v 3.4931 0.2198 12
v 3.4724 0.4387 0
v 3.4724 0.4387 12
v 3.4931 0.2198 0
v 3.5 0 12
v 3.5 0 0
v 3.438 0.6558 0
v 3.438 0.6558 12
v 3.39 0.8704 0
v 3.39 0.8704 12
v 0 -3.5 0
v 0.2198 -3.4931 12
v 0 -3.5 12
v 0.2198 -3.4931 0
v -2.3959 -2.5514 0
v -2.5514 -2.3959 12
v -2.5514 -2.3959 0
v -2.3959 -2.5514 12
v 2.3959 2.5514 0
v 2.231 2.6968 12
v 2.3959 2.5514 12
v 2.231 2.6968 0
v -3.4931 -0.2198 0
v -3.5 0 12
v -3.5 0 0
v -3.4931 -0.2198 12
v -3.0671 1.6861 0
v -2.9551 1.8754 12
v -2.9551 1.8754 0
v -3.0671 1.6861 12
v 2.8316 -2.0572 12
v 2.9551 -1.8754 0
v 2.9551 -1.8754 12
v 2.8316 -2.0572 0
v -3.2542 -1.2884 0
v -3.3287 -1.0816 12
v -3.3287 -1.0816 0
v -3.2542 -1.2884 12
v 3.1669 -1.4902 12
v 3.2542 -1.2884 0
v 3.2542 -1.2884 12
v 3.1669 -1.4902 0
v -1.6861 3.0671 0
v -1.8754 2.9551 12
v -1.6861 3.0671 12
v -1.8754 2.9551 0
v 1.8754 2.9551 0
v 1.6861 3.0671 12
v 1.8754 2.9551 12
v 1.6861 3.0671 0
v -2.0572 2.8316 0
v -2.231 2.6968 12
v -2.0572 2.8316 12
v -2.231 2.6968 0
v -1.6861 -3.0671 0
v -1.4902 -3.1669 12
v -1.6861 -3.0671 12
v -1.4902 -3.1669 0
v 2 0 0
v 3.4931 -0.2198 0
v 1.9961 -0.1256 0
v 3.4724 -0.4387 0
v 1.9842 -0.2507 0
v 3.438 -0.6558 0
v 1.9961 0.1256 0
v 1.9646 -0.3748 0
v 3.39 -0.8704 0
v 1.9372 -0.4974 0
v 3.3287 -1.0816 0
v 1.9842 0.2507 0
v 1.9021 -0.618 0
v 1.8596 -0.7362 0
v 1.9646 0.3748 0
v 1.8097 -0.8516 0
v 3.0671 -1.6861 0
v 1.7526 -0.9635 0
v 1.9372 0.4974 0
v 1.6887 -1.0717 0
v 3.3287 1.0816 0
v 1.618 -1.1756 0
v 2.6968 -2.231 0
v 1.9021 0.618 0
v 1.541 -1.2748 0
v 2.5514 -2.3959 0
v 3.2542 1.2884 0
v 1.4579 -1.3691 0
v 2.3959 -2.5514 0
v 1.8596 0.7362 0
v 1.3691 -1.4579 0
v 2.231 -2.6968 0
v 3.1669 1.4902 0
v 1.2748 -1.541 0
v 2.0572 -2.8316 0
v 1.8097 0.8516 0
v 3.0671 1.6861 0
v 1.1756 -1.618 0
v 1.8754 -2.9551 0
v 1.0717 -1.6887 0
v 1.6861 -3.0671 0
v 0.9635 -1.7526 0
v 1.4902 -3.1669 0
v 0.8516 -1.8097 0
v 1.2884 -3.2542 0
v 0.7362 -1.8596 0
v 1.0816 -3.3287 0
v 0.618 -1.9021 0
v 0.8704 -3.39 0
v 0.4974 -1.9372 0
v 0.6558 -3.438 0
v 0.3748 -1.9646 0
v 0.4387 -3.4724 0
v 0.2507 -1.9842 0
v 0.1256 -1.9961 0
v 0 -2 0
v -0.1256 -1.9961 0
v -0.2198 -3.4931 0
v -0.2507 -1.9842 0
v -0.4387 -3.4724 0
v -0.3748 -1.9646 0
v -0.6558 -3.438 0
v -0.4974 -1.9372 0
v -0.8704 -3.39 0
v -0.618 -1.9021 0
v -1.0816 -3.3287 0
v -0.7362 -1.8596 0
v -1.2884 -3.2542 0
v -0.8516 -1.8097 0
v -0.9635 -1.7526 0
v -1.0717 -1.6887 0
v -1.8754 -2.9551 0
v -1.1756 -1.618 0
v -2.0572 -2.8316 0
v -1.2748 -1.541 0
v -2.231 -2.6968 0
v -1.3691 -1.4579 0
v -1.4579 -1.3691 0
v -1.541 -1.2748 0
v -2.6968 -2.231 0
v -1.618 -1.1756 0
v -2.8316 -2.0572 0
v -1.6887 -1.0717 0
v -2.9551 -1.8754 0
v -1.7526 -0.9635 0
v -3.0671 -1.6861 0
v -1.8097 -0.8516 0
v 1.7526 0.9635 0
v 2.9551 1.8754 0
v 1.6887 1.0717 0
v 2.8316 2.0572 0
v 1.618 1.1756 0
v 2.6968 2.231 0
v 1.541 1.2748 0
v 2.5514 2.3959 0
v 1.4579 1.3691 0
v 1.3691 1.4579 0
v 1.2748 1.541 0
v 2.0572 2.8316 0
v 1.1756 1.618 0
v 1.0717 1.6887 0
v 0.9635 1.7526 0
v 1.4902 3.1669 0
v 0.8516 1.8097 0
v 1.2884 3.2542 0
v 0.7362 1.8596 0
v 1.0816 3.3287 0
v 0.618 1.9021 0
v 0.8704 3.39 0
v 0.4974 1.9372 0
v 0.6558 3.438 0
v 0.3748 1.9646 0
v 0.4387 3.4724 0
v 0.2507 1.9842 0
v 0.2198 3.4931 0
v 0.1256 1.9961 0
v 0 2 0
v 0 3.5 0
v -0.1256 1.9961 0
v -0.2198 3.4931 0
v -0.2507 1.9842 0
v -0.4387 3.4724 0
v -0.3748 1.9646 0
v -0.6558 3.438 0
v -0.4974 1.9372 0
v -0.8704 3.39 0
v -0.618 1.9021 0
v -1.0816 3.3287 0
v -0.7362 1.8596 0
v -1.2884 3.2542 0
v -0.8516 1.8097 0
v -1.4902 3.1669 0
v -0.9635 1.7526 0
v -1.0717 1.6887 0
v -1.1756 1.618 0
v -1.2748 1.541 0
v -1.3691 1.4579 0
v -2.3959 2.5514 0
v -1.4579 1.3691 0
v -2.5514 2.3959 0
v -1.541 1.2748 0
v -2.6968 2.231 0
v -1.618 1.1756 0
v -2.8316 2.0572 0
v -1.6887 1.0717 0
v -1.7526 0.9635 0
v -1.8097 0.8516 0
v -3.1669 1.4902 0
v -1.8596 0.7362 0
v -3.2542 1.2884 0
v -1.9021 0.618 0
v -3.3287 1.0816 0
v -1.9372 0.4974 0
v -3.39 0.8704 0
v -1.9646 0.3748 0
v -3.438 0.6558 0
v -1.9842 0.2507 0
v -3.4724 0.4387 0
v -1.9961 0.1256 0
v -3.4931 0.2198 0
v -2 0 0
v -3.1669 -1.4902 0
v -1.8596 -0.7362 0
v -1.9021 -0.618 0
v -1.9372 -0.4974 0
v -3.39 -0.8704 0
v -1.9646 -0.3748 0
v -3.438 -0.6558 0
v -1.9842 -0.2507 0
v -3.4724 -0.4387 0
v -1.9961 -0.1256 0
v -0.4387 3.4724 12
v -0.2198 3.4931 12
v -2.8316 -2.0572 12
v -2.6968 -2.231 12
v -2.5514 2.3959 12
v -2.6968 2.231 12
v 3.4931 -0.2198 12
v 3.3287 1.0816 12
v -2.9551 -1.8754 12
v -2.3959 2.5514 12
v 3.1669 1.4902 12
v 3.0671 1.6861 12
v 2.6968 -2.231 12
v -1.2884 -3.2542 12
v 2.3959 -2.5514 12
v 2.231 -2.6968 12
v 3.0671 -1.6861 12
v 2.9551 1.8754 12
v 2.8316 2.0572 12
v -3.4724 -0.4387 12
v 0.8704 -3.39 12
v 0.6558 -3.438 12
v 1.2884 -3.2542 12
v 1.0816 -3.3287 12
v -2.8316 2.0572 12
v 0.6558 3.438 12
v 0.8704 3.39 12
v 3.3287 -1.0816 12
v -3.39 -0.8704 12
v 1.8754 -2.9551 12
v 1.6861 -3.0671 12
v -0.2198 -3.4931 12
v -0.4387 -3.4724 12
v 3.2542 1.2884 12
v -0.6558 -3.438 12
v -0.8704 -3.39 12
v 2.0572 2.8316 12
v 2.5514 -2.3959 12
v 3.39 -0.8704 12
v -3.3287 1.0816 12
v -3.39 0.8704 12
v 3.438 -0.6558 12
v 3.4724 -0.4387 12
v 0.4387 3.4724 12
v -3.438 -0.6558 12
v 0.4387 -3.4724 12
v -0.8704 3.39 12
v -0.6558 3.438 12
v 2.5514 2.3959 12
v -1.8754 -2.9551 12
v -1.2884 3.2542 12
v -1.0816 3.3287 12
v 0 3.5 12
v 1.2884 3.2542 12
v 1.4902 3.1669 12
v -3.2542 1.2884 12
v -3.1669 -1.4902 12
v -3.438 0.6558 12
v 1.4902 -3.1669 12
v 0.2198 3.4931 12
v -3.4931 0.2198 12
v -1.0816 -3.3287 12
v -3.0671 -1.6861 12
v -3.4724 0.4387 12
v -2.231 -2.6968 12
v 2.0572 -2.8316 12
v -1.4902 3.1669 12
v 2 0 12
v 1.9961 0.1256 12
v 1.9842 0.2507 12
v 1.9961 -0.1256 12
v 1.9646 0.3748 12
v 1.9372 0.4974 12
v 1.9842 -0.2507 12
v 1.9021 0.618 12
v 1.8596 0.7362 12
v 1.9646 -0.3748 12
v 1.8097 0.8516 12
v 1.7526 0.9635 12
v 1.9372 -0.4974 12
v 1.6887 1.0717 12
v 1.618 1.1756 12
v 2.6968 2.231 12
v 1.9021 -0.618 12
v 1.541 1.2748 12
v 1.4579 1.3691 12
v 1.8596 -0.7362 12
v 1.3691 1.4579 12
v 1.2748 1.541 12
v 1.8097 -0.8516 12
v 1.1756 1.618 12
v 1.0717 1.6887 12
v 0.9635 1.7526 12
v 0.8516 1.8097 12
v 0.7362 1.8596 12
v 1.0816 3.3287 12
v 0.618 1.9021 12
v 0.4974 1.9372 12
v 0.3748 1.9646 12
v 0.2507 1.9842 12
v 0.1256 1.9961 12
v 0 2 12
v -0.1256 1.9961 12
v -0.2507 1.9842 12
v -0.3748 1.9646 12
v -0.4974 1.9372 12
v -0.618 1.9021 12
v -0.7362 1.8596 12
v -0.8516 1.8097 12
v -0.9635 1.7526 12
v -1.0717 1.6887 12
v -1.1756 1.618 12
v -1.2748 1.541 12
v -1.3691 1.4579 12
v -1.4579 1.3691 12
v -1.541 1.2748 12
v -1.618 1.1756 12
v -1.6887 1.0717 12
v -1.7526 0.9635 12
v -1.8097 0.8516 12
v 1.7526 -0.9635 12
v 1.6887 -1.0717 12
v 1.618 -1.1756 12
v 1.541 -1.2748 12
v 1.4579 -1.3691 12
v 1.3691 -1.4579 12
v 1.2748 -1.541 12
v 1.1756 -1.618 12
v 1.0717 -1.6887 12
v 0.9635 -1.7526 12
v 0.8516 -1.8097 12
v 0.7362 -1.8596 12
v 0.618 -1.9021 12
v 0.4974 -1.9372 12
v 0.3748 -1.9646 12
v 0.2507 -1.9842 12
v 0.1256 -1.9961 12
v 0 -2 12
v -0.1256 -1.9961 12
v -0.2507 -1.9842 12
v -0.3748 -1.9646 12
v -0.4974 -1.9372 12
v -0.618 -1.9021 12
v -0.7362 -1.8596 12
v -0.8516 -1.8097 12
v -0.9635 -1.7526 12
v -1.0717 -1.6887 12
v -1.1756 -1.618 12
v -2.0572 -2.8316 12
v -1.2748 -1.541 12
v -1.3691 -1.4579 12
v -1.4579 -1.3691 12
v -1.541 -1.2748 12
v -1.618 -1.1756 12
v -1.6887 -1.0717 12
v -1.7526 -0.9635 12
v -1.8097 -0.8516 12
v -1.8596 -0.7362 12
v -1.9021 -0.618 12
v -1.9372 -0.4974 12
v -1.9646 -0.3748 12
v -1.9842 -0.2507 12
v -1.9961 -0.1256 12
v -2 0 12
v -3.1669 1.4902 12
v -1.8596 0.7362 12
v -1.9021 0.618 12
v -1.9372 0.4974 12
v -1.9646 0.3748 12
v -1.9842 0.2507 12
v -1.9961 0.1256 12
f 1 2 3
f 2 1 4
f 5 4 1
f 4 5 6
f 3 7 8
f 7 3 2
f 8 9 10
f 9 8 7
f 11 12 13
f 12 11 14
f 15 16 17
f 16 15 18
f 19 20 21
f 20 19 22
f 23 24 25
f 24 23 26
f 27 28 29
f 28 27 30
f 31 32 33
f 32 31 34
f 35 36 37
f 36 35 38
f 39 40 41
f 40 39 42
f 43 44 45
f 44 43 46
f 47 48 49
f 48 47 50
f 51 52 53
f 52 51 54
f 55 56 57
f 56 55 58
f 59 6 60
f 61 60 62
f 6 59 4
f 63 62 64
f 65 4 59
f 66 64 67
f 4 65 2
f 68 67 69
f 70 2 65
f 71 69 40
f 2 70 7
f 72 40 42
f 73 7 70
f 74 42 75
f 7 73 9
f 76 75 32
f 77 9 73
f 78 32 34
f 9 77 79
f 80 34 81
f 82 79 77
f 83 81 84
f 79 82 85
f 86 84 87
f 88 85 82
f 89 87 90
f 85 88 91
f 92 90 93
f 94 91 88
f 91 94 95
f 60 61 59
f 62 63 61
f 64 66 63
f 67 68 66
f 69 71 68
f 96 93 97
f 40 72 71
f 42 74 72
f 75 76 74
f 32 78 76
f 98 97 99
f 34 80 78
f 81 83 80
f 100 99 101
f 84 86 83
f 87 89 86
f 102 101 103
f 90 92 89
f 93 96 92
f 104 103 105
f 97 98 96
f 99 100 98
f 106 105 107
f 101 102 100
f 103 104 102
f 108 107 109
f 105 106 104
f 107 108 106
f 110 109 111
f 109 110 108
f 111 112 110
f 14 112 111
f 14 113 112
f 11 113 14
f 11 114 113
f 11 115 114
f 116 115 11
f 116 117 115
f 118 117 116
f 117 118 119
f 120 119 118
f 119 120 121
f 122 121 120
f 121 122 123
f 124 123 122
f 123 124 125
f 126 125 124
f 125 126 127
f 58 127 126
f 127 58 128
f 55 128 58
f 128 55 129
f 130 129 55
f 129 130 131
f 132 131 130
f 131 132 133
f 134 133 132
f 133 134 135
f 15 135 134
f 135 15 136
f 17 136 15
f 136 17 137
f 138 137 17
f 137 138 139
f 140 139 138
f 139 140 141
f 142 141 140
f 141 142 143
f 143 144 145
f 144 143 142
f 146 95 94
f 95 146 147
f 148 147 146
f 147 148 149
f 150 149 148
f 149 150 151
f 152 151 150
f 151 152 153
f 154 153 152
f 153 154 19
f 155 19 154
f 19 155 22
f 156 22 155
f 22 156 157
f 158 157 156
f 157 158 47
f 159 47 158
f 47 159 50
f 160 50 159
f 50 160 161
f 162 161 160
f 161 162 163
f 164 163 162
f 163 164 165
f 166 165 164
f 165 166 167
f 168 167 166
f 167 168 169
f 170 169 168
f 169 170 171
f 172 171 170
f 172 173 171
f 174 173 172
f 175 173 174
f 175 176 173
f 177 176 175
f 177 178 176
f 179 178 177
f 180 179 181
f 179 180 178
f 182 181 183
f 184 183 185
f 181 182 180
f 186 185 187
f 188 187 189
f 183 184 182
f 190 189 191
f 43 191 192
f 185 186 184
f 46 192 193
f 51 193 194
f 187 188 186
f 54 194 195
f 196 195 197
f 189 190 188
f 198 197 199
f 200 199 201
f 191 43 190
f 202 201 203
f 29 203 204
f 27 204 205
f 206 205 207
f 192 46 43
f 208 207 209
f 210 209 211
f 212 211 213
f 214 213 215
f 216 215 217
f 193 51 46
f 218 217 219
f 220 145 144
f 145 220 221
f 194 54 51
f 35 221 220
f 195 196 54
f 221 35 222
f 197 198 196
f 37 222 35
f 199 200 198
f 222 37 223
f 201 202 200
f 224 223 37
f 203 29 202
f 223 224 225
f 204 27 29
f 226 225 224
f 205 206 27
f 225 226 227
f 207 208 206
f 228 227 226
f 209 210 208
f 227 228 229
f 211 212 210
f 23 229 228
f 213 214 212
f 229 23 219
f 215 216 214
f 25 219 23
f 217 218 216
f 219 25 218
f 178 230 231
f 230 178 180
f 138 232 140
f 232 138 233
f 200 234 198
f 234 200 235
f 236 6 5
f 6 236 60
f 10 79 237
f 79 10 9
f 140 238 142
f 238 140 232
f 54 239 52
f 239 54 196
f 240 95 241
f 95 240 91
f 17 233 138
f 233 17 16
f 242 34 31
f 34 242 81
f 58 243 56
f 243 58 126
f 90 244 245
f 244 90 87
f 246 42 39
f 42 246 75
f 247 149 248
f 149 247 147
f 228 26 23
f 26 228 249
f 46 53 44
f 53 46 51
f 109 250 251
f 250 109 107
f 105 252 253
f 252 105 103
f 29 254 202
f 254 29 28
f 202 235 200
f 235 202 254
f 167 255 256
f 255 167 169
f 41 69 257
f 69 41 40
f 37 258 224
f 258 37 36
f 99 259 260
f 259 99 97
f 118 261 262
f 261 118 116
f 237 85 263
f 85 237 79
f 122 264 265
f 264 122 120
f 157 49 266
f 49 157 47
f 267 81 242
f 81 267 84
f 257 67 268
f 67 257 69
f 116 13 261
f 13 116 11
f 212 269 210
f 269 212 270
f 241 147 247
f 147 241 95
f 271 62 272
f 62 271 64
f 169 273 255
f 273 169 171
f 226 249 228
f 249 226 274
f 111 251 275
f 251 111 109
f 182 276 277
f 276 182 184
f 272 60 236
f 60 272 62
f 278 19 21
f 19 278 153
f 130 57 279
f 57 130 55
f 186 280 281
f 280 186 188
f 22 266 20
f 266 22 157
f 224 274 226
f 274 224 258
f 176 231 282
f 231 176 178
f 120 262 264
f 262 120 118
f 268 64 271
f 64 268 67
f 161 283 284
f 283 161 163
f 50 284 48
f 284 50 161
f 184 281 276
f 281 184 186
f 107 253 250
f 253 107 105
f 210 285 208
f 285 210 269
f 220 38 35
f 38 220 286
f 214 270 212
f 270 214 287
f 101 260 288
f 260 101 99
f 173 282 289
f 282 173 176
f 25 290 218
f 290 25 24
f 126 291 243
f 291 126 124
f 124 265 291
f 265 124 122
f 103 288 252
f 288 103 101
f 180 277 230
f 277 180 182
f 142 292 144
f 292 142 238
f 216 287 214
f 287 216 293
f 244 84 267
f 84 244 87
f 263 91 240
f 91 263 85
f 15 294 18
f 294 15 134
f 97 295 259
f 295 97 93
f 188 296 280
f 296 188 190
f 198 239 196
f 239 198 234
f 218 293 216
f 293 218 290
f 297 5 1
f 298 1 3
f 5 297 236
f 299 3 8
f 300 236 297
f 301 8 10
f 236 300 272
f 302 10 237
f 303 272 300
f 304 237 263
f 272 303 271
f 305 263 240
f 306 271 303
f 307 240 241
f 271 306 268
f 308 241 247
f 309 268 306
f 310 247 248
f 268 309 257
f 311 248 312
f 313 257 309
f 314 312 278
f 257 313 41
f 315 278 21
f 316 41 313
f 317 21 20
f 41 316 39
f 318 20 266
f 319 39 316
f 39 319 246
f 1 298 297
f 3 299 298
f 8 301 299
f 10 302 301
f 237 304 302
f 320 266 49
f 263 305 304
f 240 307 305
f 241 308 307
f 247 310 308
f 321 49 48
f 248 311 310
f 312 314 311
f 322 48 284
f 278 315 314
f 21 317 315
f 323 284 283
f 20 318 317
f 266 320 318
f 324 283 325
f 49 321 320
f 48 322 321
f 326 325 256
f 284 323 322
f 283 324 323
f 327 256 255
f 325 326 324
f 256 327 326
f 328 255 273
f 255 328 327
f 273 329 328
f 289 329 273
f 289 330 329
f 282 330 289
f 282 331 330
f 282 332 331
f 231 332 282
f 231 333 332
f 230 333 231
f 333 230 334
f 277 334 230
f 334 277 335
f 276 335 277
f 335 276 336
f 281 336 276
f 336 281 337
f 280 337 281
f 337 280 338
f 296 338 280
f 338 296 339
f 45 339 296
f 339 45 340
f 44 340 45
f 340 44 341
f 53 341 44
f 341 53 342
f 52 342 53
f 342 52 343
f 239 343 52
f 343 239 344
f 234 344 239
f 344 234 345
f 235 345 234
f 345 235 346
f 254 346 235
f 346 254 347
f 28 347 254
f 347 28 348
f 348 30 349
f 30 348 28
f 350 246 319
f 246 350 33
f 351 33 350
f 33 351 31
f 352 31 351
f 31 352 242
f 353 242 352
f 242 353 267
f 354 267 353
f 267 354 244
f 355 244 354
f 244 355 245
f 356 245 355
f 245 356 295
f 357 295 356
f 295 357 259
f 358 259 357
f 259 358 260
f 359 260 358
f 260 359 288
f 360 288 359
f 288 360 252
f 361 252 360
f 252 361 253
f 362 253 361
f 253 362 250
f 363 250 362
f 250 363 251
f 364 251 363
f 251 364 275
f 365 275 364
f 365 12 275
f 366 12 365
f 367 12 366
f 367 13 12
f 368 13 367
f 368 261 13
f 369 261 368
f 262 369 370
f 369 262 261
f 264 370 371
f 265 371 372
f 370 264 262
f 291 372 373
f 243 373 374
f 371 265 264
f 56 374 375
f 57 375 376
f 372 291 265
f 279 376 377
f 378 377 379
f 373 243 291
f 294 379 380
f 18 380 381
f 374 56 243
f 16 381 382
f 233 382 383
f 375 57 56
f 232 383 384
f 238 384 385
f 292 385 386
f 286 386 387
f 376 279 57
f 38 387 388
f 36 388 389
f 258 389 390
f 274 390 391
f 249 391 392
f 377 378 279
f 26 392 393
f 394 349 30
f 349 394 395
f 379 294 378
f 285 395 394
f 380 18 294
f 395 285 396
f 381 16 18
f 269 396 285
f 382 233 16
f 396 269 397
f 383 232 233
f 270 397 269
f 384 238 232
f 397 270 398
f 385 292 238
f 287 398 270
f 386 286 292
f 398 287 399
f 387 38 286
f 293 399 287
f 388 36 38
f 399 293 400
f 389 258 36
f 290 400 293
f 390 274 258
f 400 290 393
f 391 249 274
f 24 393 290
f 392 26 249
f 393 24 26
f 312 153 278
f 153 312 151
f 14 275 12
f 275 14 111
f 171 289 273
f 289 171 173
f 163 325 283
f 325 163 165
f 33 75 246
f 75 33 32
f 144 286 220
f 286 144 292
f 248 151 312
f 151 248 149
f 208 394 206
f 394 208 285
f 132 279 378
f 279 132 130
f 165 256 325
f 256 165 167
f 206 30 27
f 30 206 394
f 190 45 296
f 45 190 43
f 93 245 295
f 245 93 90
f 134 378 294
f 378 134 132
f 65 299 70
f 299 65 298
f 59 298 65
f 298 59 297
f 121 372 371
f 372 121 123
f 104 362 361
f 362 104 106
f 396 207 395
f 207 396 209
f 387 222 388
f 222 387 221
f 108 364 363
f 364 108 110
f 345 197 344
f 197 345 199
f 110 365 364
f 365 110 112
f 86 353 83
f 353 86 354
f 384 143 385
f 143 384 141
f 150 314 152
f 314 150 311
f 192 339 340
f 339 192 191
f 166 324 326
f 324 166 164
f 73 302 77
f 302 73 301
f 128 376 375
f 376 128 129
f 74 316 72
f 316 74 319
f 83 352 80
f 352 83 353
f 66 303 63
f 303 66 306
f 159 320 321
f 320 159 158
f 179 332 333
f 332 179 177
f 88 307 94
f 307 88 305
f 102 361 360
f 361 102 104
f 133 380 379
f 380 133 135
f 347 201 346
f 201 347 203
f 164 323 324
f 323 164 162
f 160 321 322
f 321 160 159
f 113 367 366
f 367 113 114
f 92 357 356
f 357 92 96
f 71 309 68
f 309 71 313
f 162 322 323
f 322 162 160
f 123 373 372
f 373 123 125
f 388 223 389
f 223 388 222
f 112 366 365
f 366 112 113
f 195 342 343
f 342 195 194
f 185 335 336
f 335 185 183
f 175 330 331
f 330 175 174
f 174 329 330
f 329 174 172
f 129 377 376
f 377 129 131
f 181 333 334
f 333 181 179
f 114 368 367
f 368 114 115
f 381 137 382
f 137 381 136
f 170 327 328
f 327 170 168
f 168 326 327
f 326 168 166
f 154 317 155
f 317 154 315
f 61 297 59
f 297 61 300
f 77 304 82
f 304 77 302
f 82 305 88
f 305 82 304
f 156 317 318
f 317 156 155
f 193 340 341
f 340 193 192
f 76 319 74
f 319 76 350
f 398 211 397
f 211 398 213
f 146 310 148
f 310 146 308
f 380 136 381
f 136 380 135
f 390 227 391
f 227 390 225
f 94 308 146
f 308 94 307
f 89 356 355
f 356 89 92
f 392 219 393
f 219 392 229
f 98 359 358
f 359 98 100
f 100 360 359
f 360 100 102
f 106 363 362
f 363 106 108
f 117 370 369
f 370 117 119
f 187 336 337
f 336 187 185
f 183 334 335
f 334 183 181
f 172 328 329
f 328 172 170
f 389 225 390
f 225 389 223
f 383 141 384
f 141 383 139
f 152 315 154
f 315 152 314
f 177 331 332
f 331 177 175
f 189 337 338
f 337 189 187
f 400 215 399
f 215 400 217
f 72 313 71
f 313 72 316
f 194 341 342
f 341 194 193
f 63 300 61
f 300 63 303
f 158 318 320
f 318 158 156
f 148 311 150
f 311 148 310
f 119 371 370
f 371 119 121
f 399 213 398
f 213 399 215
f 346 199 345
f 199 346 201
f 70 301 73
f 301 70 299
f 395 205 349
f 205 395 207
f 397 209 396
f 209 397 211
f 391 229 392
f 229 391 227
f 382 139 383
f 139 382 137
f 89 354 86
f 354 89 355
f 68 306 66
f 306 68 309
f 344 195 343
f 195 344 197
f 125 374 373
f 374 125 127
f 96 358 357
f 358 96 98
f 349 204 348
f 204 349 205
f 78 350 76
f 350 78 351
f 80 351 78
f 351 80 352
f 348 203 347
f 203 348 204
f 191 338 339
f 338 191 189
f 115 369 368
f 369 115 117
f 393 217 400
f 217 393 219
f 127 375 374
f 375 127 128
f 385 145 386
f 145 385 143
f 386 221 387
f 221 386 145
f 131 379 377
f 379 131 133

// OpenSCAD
hole_dir_outer=7;
hole_dir_inner=4;
//Takes M3 threaded brass inserts
$fn=100;

height=12;
pillar(hole_dir_outer,hole_dir_inner,height);

module pillar(outer, inner, height) {
    difference() {
        cylinder(d=outer, h=height);
        translate([0,0,-0.1]) cylinder(d=inner, h=height + 0.2);
    }
}
